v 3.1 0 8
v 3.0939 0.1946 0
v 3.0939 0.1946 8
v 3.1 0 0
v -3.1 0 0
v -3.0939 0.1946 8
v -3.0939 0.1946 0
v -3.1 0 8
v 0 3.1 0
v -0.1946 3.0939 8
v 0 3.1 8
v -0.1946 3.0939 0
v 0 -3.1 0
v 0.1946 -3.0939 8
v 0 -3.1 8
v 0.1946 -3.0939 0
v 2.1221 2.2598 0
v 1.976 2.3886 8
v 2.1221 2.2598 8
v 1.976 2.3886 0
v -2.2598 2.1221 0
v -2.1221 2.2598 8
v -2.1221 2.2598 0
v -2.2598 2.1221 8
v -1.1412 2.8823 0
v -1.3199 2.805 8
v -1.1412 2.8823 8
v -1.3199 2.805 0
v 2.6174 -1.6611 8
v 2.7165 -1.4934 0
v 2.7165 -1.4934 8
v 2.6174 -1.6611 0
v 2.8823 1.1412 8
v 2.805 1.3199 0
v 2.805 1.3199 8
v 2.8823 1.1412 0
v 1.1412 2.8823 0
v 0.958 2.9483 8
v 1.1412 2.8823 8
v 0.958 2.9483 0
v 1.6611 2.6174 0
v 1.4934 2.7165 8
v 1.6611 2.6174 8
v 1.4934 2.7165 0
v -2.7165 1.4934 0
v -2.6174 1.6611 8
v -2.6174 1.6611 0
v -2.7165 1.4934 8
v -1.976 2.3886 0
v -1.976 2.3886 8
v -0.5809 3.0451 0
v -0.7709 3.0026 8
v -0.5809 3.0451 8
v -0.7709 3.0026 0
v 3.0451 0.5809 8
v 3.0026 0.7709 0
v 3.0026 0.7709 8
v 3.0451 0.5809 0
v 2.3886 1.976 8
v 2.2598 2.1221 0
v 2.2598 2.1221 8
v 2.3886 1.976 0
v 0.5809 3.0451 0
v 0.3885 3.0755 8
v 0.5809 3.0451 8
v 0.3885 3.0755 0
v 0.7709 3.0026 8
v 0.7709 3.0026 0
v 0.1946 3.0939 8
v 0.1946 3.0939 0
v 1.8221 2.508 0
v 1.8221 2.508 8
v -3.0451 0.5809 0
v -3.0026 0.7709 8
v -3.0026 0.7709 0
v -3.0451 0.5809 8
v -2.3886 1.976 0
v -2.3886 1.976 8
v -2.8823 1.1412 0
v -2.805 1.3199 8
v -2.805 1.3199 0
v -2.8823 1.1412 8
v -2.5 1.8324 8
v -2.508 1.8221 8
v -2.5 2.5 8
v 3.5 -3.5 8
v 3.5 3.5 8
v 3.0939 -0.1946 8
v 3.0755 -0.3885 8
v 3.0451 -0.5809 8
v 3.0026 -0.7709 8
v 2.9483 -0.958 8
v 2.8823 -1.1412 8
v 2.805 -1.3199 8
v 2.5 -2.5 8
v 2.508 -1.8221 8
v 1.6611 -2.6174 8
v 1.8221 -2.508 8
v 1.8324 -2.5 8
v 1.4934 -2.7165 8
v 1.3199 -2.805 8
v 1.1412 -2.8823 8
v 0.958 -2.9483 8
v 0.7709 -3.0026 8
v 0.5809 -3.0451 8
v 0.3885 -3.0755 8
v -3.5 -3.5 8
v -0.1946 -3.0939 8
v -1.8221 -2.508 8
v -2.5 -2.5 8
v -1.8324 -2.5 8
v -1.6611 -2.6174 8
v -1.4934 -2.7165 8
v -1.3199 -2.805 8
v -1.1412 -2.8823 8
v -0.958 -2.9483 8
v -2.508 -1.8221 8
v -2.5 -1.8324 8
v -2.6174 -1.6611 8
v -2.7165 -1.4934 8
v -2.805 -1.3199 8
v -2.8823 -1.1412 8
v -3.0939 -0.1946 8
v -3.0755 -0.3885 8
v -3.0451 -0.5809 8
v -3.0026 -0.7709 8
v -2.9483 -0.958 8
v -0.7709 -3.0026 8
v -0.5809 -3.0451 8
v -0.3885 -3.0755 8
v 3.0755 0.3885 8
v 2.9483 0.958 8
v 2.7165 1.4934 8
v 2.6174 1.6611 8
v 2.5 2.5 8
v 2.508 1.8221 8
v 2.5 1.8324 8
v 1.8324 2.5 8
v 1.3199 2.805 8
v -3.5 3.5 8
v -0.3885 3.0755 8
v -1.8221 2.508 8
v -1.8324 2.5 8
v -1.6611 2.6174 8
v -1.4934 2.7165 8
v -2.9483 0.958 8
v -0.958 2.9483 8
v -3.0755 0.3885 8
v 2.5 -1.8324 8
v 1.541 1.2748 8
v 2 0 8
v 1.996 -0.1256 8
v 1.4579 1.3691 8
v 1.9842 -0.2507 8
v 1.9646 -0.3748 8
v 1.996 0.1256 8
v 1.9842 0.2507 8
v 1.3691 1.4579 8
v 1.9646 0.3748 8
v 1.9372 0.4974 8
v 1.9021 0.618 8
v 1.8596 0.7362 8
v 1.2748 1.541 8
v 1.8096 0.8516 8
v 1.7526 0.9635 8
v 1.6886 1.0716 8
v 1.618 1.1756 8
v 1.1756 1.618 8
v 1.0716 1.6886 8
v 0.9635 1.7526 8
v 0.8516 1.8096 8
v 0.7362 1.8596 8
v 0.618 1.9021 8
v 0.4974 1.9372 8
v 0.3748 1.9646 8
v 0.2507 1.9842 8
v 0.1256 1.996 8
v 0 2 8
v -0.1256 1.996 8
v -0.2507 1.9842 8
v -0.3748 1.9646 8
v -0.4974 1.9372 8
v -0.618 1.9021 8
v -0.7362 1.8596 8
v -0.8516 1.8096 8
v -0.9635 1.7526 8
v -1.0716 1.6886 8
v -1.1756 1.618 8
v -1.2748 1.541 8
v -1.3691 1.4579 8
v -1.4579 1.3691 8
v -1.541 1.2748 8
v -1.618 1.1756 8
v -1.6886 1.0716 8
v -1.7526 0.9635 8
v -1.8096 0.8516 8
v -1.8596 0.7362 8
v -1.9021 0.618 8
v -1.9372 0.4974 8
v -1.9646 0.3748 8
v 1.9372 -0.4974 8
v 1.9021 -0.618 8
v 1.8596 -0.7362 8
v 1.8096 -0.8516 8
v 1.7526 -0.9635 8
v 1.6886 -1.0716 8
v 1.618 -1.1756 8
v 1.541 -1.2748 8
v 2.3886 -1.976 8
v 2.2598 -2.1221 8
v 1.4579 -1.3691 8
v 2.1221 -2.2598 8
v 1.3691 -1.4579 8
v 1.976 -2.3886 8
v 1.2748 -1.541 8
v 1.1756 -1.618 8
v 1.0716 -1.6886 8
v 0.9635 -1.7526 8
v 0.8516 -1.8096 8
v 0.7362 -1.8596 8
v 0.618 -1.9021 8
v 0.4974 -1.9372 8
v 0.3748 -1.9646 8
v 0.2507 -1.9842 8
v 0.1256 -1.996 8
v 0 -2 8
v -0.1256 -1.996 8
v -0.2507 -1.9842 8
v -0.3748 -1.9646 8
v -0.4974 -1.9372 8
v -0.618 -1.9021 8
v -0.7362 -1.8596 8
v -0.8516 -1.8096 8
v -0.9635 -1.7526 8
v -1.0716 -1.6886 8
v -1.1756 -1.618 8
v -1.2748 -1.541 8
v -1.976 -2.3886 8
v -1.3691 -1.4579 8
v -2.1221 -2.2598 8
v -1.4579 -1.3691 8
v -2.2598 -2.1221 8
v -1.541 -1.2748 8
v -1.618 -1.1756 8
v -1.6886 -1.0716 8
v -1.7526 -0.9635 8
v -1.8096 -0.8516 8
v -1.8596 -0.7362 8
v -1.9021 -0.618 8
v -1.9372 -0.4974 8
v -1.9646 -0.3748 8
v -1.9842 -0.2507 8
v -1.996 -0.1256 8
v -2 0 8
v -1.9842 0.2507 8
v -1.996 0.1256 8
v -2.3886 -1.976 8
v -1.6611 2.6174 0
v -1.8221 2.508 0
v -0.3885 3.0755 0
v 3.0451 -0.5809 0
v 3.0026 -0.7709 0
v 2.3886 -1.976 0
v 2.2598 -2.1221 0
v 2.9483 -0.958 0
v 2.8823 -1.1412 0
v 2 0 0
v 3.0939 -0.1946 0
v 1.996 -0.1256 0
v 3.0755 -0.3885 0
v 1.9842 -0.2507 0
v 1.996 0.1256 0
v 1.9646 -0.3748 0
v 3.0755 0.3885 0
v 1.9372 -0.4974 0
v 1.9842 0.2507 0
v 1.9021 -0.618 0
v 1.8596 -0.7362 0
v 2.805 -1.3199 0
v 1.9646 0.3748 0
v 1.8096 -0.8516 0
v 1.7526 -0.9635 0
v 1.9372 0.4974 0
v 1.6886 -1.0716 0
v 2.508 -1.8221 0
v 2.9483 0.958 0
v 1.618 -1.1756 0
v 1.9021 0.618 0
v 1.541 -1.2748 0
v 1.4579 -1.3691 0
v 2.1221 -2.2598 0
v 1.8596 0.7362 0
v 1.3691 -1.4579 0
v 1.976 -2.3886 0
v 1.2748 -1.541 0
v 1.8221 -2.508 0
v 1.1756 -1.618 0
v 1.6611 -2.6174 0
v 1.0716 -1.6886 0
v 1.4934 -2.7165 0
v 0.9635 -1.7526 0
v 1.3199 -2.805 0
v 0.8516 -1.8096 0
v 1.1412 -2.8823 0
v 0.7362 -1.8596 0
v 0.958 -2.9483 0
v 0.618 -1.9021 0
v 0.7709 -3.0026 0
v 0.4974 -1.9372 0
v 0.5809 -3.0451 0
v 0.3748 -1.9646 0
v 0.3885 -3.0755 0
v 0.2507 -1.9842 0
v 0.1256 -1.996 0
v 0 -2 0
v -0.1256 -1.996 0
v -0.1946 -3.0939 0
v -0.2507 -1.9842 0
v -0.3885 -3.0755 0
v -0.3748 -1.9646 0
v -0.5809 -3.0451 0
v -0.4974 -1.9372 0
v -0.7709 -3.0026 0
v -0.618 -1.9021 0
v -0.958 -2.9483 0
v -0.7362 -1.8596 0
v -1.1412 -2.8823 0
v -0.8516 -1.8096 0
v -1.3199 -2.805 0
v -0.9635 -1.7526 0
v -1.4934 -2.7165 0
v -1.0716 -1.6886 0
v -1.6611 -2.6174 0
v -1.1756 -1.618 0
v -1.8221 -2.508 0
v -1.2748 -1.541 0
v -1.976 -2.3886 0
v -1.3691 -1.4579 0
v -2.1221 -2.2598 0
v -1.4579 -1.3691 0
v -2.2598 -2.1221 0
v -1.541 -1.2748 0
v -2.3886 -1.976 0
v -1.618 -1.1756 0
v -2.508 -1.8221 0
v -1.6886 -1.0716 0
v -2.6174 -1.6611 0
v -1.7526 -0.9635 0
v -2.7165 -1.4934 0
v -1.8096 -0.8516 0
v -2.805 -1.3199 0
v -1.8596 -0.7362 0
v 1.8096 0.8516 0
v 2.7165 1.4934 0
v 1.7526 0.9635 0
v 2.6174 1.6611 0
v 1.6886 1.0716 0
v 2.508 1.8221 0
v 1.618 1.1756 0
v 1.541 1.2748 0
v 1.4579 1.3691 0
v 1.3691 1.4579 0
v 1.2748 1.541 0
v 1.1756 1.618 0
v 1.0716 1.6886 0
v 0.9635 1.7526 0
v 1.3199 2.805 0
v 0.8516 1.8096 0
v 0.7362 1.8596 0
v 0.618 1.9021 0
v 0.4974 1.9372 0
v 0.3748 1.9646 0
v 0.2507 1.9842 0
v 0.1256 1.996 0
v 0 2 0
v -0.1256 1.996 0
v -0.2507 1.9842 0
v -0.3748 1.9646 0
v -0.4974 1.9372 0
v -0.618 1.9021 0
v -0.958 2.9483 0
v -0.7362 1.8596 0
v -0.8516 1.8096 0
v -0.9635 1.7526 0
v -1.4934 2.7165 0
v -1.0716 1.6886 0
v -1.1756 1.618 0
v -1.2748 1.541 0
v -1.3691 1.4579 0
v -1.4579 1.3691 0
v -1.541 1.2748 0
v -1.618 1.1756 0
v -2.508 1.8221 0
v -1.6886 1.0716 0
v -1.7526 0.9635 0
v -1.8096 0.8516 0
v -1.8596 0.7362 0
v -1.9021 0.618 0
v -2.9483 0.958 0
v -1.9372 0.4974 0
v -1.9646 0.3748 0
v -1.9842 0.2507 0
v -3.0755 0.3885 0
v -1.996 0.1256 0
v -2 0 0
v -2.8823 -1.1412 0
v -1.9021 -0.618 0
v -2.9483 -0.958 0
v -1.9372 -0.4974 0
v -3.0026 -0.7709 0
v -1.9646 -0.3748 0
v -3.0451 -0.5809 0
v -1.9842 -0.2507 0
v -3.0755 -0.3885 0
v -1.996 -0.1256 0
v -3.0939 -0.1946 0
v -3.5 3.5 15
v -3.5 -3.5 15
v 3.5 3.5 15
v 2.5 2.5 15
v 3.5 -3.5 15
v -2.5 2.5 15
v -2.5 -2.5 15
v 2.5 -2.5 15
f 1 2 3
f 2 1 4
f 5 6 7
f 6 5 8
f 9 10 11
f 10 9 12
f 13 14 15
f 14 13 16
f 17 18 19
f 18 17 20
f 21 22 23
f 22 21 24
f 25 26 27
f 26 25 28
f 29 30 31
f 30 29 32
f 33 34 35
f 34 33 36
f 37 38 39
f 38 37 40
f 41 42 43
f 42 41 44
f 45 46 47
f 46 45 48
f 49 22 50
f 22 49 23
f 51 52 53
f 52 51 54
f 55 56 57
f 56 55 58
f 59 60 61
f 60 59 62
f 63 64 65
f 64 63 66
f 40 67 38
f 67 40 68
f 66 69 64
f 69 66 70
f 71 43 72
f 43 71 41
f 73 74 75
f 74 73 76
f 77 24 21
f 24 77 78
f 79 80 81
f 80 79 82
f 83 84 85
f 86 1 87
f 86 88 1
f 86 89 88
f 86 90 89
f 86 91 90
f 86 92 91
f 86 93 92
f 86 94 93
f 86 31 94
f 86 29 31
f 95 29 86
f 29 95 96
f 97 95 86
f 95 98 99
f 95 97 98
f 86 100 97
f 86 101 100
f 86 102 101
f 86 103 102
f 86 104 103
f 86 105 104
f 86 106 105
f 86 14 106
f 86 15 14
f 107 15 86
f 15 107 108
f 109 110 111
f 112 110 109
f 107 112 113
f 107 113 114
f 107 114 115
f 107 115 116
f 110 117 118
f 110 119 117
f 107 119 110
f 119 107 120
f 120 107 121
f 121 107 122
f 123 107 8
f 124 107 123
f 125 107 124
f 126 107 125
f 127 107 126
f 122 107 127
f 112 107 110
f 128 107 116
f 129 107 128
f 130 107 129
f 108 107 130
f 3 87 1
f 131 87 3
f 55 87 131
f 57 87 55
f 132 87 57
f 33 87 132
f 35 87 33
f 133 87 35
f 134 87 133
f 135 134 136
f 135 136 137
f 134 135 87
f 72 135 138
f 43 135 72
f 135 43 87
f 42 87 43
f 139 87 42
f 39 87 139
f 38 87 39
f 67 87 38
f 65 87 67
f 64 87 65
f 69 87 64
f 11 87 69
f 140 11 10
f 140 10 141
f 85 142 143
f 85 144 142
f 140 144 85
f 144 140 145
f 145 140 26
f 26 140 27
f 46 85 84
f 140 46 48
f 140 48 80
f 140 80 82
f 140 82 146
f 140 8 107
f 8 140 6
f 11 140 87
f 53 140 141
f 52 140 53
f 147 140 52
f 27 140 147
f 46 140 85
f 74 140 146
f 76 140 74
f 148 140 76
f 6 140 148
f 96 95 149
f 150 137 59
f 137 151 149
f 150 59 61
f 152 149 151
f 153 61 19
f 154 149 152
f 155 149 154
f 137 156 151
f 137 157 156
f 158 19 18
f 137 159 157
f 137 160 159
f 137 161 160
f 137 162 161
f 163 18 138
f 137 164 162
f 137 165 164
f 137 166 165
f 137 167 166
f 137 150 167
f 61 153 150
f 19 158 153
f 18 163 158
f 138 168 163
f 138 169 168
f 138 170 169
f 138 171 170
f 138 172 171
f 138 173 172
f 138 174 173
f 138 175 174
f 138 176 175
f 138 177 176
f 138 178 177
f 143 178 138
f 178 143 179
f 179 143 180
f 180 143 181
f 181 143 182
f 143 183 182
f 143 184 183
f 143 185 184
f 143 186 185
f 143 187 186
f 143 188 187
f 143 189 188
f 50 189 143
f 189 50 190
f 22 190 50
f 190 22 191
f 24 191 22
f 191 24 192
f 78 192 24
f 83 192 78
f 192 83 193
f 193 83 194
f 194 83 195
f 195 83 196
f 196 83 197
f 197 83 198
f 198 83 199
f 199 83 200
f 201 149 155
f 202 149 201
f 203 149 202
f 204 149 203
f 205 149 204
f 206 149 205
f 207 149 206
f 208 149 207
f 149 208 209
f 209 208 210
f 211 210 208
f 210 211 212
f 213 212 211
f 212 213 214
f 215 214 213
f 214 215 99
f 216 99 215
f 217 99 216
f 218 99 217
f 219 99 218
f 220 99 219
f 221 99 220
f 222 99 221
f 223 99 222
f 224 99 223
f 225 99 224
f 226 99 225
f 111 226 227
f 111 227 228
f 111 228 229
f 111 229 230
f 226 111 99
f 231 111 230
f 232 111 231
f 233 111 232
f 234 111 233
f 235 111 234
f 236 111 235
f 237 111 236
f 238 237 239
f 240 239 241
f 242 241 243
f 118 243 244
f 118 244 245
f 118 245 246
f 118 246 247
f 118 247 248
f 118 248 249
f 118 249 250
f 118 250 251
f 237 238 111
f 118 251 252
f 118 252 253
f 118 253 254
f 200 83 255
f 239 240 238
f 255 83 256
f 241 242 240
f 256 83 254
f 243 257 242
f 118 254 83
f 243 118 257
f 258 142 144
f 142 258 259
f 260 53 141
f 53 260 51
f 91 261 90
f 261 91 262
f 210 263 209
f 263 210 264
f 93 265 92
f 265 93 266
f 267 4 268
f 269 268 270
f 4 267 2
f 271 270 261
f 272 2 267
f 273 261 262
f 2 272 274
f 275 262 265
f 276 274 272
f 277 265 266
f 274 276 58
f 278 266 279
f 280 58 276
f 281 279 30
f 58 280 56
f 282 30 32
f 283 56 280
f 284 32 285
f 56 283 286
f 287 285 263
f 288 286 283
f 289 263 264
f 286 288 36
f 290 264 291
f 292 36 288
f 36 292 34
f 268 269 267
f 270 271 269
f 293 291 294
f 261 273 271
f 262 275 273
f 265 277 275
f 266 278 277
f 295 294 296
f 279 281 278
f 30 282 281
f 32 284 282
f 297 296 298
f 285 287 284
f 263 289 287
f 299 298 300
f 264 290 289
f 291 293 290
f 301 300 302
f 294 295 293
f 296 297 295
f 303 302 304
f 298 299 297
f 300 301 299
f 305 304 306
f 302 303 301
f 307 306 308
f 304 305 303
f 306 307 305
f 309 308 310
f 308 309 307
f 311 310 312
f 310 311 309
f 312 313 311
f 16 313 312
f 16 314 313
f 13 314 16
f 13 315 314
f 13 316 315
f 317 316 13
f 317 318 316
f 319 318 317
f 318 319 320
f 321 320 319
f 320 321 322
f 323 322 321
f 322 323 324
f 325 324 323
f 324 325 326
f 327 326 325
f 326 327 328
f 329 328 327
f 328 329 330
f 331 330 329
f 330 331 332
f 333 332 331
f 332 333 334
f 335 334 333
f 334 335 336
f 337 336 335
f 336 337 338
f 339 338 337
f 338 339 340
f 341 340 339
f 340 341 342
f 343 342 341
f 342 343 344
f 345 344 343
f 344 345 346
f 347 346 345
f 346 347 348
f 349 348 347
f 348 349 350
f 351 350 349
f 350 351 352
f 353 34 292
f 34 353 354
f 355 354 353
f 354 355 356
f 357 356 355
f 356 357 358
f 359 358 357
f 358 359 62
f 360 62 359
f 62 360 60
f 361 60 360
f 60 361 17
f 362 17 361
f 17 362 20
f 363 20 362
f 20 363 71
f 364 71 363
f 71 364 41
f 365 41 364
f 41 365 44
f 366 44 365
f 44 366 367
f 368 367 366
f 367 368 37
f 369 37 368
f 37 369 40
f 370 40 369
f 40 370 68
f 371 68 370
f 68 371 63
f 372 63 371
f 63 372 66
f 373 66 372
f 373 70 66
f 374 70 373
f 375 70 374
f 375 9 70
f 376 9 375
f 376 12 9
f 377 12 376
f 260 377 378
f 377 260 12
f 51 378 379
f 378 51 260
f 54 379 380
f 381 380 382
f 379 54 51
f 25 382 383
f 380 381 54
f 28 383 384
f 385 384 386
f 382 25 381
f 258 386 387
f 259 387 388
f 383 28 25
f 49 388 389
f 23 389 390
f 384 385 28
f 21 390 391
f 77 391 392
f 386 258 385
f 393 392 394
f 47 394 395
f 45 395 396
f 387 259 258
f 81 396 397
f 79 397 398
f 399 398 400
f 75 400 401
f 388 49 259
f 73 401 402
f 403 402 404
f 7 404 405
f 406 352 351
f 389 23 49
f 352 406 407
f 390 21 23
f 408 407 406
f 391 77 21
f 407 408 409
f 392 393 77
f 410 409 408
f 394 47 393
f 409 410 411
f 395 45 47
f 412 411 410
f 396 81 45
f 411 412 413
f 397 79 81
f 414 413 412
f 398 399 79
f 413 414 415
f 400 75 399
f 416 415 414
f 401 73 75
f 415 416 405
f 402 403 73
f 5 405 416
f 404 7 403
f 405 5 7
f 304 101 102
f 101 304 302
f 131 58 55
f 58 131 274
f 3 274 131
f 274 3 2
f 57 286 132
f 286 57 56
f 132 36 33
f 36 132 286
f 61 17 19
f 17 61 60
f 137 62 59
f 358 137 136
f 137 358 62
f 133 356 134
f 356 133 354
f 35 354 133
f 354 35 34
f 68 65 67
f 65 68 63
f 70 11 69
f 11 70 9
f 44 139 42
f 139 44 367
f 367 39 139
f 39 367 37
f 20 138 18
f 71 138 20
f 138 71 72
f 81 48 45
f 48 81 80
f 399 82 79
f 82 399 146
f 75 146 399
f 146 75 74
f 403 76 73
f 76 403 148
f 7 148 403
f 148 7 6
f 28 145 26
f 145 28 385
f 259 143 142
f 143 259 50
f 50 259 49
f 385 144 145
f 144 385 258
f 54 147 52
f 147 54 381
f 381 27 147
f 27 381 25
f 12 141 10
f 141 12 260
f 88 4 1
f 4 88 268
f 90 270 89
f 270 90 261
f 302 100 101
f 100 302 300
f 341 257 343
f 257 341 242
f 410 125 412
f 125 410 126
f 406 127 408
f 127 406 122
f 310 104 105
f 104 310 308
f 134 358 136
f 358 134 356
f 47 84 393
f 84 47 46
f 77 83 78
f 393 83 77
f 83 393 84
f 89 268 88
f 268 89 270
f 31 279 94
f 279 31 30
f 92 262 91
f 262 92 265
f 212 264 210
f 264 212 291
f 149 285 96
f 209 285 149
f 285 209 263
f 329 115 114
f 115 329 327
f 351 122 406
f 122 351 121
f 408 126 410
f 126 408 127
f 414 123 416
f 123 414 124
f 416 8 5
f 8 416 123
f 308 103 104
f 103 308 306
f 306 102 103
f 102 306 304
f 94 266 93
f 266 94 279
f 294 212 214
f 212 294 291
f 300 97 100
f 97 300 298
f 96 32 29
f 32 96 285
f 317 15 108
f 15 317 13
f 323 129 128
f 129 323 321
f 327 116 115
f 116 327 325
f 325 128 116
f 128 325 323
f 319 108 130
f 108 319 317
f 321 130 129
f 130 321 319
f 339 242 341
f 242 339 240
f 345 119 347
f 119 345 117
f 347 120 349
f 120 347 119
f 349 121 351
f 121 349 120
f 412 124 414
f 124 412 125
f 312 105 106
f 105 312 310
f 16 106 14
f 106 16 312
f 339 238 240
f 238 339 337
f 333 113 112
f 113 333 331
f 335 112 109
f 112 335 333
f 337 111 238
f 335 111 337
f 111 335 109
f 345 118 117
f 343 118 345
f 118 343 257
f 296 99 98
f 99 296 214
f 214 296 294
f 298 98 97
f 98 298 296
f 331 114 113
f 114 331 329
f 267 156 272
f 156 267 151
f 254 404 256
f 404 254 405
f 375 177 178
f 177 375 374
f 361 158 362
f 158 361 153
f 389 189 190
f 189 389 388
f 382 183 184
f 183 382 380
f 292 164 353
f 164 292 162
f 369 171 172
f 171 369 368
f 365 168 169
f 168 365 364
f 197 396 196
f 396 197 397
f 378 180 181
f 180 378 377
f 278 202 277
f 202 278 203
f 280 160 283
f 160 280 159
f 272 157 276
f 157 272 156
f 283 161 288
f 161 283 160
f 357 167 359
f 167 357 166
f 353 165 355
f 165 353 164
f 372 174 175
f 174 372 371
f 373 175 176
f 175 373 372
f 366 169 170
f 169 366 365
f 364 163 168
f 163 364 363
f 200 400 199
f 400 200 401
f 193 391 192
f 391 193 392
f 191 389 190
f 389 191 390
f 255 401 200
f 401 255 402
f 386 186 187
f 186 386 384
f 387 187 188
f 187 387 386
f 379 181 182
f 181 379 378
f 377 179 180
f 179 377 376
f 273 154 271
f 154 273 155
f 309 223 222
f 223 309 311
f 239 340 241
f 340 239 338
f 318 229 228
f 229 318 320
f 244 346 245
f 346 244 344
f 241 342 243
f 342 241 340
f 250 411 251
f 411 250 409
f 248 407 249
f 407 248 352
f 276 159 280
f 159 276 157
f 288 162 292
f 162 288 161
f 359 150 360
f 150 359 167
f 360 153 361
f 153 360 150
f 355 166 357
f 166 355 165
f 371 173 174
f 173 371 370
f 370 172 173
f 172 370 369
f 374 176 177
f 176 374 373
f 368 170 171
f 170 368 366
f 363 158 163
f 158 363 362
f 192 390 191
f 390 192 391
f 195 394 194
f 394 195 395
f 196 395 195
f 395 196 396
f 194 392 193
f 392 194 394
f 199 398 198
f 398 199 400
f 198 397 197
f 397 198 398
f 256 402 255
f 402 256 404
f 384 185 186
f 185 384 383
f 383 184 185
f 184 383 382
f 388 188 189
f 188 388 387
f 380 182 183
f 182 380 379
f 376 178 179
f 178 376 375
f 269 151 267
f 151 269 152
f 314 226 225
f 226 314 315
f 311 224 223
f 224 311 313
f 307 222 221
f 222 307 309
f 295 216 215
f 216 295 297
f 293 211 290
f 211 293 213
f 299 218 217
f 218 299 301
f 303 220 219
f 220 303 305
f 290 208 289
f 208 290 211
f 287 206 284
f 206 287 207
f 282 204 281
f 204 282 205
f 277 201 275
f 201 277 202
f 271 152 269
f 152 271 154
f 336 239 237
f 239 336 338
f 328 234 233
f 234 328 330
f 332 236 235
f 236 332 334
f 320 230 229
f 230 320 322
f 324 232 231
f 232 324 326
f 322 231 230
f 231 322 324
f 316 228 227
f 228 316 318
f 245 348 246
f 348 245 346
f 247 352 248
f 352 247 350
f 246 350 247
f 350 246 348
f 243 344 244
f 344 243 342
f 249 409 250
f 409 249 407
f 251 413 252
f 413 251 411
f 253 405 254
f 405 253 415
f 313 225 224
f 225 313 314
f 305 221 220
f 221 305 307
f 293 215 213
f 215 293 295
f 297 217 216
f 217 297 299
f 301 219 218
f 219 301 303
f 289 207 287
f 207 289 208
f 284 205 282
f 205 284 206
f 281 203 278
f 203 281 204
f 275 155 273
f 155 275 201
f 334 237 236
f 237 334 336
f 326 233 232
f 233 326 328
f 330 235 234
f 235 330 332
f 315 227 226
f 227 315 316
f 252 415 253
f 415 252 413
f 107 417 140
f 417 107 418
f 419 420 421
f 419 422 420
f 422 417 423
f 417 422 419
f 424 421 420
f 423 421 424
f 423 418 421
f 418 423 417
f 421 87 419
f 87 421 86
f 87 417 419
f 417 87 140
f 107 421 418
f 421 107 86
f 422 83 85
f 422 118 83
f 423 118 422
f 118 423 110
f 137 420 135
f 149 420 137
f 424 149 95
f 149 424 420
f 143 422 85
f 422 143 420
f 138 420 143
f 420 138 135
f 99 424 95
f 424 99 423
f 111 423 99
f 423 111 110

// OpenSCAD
// file: bottom_pin.scad
$fn=100;

module pin(diameter=6.2,height=10)
{
    difference(){
        cylinder(d=6.2, h=height);
            cylinder(d=4, h=height);
    }
}

pin();
// main file
use <bottom_pin.scad>;
height=8;
//bottom pin
pin(height=height);

//box on top for the wood samples
difference(){
    translate([0,0,height+3.5]) cube([7,7,7], center=true);
    #translate([0,0,height+4]) cube([5,5,8], center=true);
}
